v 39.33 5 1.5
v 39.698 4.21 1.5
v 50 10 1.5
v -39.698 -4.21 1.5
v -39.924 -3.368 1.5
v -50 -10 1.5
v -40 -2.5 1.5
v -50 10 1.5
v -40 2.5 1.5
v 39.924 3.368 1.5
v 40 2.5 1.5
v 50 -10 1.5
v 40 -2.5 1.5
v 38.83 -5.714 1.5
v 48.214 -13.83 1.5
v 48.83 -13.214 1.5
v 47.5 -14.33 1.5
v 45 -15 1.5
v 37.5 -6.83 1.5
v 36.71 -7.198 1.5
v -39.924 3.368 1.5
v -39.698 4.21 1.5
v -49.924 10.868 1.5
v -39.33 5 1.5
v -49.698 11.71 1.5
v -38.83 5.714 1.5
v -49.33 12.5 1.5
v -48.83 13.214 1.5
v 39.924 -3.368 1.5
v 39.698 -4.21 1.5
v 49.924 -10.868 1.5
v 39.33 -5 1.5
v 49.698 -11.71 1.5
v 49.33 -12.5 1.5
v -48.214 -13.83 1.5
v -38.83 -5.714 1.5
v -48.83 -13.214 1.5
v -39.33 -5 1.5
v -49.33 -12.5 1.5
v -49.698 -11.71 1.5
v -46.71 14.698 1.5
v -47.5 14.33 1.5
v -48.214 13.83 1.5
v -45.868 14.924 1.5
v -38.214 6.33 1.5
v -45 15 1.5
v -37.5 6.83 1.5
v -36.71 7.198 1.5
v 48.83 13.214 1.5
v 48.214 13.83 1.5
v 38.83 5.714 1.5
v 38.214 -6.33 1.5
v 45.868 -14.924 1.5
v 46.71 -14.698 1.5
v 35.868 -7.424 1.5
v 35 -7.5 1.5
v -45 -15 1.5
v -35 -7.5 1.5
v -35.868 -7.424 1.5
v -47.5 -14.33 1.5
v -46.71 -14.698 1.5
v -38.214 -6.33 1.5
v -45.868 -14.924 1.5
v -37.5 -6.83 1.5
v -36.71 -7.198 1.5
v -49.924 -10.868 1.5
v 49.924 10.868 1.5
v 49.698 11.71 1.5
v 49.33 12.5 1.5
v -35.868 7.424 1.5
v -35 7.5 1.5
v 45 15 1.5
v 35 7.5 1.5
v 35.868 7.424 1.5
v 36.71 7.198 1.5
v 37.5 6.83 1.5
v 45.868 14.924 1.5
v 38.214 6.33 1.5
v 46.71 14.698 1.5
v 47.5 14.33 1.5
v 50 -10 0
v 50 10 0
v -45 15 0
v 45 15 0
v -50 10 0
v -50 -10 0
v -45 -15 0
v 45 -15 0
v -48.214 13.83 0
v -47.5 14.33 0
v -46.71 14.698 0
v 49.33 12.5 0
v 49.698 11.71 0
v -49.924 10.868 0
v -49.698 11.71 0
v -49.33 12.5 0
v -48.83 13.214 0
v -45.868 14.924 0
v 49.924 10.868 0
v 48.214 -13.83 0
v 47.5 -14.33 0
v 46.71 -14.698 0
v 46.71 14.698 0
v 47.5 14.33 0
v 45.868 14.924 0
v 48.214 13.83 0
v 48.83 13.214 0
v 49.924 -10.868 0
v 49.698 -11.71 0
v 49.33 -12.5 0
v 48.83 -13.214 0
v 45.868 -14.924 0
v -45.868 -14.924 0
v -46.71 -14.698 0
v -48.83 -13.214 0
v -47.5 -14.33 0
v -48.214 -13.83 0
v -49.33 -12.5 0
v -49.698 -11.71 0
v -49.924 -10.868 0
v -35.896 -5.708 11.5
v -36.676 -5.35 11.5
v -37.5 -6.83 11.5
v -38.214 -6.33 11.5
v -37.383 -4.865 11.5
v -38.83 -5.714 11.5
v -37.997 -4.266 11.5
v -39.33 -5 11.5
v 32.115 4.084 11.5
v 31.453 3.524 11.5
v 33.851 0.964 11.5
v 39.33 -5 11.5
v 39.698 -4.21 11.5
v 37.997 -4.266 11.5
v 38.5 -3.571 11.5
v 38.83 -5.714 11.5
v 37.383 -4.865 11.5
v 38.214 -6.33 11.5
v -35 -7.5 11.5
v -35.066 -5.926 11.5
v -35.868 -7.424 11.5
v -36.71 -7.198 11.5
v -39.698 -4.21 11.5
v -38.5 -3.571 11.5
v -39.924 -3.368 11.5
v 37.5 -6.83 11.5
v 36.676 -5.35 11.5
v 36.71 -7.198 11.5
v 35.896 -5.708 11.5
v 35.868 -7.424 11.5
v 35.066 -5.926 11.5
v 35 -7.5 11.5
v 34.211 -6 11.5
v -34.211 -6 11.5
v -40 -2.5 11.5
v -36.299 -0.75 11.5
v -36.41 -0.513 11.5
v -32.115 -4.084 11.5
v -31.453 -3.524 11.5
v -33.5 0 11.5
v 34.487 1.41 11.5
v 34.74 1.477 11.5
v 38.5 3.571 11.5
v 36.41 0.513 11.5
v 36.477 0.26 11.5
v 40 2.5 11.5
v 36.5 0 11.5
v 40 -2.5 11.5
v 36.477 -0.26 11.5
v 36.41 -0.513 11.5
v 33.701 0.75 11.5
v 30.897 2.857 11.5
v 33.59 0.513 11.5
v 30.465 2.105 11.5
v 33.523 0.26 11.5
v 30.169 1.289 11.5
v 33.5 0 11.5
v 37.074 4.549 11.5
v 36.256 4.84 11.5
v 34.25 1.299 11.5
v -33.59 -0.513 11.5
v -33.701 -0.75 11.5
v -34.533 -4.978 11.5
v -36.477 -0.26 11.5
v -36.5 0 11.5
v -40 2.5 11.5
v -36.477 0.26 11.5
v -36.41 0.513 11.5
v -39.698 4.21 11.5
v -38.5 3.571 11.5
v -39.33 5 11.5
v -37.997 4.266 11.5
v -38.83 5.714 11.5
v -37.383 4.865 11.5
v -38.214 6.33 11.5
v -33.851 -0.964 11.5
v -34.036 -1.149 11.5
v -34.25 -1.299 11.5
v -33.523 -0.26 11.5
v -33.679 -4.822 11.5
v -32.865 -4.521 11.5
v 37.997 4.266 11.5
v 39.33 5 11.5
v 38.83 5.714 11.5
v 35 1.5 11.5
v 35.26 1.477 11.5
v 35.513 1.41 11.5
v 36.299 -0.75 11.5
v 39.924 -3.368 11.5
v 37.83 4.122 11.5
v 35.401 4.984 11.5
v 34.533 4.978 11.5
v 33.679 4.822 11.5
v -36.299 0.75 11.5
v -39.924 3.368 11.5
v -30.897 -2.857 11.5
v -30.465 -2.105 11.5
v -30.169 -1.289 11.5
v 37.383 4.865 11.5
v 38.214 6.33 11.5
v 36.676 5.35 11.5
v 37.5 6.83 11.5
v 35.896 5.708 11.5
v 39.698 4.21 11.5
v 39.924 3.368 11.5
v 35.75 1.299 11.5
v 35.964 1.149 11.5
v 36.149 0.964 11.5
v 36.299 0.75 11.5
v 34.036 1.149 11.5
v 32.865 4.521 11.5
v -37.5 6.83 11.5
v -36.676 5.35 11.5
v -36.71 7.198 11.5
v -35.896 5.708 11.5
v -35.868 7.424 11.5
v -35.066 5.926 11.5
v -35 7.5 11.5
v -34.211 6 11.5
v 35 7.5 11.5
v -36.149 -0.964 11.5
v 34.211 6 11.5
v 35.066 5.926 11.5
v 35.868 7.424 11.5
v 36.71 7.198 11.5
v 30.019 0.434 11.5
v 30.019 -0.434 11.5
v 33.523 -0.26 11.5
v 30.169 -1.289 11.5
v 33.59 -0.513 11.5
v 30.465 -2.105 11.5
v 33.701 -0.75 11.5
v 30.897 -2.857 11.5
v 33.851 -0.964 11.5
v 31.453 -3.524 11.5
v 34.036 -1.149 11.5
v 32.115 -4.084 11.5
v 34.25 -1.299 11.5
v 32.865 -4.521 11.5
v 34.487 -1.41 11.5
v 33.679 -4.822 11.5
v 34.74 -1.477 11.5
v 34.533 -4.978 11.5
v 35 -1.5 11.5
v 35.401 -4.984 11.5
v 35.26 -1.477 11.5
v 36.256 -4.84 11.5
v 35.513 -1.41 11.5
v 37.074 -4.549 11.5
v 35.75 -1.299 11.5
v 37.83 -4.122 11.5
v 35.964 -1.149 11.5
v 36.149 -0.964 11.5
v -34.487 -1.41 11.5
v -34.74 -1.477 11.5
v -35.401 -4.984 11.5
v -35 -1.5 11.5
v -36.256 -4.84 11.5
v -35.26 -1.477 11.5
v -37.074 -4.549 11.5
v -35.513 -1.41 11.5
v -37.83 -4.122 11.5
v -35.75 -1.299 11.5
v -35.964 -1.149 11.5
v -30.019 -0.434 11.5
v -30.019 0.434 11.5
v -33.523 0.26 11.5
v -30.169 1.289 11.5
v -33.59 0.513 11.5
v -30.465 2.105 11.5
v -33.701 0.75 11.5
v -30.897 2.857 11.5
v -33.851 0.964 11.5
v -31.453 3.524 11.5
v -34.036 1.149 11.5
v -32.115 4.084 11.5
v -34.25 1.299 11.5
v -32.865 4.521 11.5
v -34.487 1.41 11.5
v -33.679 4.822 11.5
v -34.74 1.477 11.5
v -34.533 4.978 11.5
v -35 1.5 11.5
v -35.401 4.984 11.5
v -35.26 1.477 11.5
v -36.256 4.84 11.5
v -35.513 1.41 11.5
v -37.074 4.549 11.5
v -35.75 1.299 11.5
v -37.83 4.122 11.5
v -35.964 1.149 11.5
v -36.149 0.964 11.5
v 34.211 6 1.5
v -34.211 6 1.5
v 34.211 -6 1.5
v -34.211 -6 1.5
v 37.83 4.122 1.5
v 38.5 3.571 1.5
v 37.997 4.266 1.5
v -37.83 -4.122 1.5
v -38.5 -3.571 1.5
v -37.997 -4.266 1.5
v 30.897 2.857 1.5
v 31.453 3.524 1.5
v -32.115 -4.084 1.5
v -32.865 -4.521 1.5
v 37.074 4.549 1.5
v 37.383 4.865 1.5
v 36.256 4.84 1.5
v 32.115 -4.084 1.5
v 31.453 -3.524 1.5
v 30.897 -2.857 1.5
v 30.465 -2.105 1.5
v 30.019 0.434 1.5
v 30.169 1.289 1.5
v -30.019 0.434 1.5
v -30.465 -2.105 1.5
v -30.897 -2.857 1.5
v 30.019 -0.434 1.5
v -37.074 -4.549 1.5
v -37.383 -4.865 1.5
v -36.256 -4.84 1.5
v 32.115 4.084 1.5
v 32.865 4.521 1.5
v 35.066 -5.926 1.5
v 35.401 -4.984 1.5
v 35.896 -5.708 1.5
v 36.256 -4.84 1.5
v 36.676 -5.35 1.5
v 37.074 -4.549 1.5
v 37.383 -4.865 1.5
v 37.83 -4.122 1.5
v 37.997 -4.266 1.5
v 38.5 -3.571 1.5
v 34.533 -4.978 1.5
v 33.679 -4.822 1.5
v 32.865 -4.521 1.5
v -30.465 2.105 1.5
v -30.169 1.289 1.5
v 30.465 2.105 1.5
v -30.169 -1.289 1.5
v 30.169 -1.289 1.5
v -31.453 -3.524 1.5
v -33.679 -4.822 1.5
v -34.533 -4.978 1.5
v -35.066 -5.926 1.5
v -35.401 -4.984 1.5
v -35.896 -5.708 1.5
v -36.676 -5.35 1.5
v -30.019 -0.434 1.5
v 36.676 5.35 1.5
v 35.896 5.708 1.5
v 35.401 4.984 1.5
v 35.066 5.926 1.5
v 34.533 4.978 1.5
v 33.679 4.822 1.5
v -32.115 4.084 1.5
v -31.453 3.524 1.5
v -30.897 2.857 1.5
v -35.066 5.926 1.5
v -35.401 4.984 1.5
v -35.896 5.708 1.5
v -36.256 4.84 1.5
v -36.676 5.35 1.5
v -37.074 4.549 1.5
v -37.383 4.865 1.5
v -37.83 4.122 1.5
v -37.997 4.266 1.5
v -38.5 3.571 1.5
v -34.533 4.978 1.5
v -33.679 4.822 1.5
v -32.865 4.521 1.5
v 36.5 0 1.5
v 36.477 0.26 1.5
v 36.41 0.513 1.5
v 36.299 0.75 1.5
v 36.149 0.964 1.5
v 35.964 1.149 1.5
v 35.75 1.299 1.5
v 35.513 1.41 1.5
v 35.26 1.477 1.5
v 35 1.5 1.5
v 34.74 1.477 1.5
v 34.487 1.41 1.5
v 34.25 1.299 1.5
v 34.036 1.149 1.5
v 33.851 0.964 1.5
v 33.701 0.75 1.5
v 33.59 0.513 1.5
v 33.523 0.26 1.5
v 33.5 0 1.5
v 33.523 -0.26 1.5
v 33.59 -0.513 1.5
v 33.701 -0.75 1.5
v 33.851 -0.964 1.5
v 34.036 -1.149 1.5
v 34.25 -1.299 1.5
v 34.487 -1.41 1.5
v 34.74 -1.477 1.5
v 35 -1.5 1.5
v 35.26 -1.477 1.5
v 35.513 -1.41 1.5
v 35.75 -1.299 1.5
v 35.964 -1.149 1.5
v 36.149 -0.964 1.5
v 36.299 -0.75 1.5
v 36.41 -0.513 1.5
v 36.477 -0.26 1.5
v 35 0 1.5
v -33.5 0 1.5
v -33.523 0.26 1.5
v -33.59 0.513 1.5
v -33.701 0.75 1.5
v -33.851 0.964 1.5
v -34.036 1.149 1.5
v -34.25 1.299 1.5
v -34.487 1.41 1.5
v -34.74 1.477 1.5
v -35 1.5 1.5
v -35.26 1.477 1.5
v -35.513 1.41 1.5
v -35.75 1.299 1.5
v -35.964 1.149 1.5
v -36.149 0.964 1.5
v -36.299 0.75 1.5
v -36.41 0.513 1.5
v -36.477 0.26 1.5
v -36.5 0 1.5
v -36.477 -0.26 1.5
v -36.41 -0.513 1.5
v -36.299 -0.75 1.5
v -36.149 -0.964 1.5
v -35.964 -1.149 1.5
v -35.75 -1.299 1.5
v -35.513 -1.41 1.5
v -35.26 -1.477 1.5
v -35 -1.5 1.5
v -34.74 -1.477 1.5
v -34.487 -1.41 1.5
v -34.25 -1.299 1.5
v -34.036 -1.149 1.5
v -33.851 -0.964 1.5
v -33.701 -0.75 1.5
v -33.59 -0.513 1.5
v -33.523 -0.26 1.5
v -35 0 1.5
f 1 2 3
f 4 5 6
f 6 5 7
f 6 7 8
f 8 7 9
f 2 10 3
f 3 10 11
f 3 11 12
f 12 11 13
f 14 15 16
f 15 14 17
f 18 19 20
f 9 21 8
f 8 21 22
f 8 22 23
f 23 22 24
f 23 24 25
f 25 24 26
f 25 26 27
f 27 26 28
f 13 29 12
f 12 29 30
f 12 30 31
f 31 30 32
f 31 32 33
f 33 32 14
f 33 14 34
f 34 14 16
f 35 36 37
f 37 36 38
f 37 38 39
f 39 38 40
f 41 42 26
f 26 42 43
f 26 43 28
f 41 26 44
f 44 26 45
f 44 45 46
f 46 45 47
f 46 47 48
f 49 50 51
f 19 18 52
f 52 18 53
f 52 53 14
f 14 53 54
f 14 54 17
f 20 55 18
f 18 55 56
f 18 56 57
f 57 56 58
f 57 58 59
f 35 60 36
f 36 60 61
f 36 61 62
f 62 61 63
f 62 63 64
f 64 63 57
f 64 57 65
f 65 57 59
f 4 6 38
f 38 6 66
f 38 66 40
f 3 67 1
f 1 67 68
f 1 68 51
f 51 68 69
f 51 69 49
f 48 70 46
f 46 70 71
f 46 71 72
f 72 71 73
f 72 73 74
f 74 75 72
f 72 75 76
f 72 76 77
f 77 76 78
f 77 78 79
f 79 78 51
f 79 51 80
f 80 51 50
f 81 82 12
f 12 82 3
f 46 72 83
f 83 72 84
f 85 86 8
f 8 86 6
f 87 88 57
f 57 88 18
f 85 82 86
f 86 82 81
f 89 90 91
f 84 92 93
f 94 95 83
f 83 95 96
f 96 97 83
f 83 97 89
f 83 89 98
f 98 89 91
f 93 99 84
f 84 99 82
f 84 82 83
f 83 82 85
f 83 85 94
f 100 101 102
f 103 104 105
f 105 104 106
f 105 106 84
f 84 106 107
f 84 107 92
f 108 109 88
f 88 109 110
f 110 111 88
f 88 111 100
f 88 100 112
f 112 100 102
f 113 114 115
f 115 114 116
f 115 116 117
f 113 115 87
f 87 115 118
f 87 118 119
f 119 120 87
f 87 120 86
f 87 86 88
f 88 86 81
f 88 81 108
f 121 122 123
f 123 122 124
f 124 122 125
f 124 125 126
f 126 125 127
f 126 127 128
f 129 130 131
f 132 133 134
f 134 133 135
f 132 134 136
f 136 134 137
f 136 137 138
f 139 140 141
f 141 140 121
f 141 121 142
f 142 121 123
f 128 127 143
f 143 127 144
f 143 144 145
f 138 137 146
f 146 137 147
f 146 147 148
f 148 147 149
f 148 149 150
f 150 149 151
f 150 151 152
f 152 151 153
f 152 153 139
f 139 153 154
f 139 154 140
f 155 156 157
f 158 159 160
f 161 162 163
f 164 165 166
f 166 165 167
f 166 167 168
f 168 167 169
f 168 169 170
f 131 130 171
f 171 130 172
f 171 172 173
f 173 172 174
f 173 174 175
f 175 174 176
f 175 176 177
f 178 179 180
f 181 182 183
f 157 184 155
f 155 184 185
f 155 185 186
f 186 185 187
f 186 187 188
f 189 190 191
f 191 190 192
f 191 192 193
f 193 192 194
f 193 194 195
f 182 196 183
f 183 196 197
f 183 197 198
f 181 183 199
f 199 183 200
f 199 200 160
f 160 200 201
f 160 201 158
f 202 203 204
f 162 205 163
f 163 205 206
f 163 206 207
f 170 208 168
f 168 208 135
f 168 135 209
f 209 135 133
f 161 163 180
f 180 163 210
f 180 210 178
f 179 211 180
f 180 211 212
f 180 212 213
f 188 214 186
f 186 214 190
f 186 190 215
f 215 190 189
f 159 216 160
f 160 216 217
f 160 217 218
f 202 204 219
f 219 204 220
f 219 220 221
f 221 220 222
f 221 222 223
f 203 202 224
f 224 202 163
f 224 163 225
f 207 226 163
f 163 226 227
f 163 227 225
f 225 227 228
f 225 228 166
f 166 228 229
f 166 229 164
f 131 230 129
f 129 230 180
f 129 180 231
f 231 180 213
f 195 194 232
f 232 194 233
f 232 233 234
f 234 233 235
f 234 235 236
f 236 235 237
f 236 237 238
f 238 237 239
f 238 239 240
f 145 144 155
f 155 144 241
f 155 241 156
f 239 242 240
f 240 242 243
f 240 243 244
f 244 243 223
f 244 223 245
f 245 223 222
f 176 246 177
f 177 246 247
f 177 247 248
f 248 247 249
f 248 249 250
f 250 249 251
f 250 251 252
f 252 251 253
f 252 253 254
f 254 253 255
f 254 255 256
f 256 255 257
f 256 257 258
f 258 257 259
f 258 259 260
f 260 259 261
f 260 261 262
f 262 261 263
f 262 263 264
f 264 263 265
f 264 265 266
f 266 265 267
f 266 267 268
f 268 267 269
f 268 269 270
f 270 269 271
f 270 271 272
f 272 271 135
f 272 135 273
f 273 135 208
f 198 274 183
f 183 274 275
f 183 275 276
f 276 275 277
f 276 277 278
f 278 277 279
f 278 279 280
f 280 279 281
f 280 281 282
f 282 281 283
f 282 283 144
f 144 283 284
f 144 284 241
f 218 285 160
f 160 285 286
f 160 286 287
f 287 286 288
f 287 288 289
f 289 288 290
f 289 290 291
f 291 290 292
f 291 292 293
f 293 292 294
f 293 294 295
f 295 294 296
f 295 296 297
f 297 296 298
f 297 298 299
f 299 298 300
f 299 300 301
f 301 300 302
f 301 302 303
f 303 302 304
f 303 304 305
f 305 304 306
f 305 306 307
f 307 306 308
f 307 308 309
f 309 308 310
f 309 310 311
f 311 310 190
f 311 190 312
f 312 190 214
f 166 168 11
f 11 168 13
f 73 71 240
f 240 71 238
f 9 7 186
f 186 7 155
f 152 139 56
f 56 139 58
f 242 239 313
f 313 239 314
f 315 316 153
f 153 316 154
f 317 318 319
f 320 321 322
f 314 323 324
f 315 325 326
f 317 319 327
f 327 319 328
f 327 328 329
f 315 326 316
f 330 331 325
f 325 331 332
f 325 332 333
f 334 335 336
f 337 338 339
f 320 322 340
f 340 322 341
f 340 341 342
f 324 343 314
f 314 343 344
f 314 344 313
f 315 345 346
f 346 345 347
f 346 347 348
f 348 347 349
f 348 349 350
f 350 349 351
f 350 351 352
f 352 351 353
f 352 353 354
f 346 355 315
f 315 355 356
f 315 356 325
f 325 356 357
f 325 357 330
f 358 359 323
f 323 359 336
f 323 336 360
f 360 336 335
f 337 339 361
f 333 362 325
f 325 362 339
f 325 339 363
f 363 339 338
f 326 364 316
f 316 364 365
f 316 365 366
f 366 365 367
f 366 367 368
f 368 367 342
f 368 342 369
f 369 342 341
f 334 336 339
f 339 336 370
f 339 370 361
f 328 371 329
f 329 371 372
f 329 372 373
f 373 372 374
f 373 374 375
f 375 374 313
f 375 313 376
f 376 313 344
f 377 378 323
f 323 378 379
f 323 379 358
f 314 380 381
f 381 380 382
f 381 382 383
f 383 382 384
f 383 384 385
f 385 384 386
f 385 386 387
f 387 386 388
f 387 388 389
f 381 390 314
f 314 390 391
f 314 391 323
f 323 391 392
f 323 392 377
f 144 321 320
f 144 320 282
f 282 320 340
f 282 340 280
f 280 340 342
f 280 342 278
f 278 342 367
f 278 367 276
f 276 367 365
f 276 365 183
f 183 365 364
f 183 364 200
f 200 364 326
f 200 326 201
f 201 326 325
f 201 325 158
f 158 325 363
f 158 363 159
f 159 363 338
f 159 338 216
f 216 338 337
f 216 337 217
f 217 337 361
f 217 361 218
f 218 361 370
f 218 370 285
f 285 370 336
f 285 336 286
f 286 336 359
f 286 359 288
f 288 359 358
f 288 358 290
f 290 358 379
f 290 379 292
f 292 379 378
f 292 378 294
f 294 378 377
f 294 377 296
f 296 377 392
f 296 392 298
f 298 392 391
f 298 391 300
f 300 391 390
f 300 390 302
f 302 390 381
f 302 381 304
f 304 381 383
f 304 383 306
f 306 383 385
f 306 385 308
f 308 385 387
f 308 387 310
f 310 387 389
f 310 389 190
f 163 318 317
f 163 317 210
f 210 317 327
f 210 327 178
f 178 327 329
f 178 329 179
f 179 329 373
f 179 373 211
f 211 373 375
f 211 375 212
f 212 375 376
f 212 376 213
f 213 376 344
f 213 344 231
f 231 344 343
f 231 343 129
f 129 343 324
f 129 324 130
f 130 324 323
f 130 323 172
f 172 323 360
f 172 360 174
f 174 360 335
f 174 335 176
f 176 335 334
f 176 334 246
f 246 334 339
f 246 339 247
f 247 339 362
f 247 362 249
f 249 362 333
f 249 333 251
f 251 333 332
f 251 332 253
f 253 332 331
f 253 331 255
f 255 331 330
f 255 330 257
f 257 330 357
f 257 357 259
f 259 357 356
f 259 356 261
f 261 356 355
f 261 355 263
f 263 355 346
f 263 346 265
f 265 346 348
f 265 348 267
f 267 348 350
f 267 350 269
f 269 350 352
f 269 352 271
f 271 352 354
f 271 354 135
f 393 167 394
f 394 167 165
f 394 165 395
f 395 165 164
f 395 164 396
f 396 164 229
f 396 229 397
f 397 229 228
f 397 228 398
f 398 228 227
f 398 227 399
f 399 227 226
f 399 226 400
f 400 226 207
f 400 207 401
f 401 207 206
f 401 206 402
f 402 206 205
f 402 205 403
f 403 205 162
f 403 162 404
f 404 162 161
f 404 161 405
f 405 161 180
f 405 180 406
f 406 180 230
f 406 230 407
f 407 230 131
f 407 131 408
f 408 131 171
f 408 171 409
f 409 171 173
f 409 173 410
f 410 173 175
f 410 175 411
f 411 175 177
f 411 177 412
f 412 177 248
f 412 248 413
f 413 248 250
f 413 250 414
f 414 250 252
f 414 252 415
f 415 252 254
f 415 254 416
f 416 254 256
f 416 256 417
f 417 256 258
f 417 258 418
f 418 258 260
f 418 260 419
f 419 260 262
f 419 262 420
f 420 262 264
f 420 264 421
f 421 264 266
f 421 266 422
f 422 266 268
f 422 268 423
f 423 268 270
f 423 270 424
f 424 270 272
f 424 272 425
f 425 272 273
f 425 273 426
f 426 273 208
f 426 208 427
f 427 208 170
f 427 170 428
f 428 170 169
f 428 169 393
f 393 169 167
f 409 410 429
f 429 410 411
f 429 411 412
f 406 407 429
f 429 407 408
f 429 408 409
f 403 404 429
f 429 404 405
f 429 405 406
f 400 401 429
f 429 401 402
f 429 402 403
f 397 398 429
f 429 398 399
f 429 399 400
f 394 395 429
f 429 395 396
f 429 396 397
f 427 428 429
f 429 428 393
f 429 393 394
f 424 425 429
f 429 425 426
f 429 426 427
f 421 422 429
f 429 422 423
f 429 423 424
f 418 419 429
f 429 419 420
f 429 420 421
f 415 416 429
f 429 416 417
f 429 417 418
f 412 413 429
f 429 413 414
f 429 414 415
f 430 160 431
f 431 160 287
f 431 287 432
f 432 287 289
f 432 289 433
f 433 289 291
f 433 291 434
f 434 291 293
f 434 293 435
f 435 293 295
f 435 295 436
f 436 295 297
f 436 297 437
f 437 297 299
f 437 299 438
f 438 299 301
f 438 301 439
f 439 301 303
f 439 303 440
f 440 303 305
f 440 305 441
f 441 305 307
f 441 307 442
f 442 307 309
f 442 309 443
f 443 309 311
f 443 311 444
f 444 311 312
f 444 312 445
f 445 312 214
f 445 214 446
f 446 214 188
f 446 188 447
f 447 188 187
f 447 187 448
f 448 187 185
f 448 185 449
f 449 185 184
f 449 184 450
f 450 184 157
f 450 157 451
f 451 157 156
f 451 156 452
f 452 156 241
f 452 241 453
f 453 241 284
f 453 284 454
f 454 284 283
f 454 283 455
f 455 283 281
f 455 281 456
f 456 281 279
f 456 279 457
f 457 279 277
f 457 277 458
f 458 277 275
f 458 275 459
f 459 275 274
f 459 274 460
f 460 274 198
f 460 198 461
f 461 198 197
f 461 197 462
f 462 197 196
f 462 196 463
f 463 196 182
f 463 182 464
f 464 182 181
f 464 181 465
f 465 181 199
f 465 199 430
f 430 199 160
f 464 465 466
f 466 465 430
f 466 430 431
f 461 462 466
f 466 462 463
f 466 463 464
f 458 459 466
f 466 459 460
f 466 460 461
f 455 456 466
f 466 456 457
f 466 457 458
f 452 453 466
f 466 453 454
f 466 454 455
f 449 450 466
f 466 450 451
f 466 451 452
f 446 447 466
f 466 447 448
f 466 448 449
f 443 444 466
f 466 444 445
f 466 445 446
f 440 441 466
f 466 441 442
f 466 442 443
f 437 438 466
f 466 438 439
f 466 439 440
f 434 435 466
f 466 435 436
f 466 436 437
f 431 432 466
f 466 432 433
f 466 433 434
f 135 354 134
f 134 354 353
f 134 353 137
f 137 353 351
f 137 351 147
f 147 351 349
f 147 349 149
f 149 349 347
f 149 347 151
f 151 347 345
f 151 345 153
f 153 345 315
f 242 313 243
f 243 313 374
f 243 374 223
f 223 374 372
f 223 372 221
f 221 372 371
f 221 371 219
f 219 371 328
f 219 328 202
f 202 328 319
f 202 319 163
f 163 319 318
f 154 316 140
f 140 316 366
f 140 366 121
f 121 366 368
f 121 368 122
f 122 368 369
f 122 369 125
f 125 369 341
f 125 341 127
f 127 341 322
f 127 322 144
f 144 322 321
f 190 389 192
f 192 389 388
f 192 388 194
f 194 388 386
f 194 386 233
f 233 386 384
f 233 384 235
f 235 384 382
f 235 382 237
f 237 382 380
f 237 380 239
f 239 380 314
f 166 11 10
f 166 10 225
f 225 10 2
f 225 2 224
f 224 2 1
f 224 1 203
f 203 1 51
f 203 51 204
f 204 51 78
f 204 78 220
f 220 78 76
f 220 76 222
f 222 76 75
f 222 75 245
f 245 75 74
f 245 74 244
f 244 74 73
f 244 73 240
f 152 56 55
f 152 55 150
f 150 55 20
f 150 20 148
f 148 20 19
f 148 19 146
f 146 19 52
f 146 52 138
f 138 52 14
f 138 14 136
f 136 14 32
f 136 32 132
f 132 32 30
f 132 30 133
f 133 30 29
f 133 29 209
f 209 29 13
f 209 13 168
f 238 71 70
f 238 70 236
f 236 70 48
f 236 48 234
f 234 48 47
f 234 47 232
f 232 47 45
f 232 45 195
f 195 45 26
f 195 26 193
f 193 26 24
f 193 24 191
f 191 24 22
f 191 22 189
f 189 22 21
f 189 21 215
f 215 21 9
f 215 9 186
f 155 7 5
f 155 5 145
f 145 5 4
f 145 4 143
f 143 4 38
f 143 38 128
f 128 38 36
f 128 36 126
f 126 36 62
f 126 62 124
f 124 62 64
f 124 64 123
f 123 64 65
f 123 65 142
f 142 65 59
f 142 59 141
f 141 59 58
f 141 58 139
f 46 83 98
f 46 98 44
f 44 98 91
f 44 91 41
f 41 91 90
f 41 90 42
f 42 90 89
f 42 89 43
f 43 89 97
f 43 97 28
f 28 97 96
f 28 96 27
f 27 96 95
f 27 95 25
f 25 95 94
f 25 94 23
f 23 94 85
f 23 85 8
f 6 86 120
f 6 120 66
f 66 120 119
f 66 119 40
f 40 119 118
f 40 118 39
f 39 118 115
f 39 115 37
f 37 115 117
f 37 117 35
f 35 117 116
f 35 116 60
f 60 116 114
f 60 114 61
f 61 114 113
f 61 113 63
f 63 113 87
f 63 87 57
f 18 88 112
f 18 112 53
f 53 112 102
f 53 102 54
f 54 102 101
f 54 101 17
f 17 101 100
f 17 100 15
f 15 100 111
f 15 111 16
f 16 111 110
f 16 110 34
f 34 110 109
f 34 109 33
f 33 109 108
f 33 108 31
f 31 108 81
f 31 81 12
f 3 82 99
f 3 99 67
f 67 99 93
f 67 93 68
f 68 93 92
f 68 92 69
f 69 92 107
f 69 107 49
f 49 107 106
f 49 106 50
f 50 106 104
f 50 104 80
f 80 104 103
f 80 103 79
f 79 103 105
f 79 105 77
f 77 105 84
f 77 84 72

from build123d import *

# Parameters (mm, degrees)
SKETCH1_W           = 100
SKETCH1_H           = 30
BOSS_EXTRUDE1_DEPTH = 1.5
SKETCH2_W           = 80
SKETCH2_H           = 15
SKETCH2_W_2         = 77
SKETCH2_H_2         = 12
EXTRUDE_THIN1_DEPTH = 10
SKETCH3_R           = 5
BOSS_EXTRUDE2_DEPTH = 10
SKETCH4_R           = 1.5
CUT_EXTRUDE1_DEPTH  = 10
FILLET1_R           = 5


with BuildPart() as part:
    # Sketch1 → Boss-Extrude1 (new body)
    with BuildSketch(Plane.XY):
        Rectangle(SKETCH1_W, SKETCH1_H)
    extrude(amount=BOSS_EXTRUDE1_DEPTH)

    # Sketch2 → Extrude-Thin1 (add)
    with BuildSketch(Plane.XY.offset(1.5)):
        Rectangle(SKETCH2_W, SKETCH2_H)
        Rectangle(SKETCH2_W_2, SKETCH2_H_2, mode=Mode.SUBTRACT)
    extrude(amount=EXTRUDE_THIN1_DEPTH)

    # Sketch3 → Boss-Extrude2 (add)
    with BuildSketch(Plane.XY.offset(1.5)):
        with Locations((-35, 0)):
            Circle(SKETCH3_R)
        with Locations((35, 0)):
            Circle(SKETCH3_R)
    extrude(amount=BOSS_EXTRUDE2_DEPTH)

    # Sketch4 → Cut-Extrude1 (cut)
    with BuildSketch(Plane.XY.offset(11.5)):
        with Locations((-35, 0)):
            Circle(SKETCH4_R)
        with Locations(Location((35, 0, 0), (0, 0, 180))):
            Circle(SKETCH4_R)
    extrude(amount=-CUT_EXTRUDE1_DEPTH, mode=Mode.SUBTRACT)

    # Fillet1
    # the kernel refuses this fillet: 5 mm, written as the material it adds along each edge
    with BuildSketch(Plane(origin=(38.5, -6, 1.5), x_dir=(0, 1, 0), z_dir=(0, 0, 1))) as fillet1_piece_1:
        with BuildLine():
            CenterArc((5, 4.288522873), FILLET1_R, 180, 59.059821395)
            Line((0, 4.288522873), (0, 0))
            Line((0, 0), (2.429285786, 0))
        make_face()
    extrude(amount=10)
    with BuildSketch(Plane(origin=(38.5, 6, 1.5), x_dir=(0, -1, 0), z_dir=(0, 0, 1))) as fillet1_piece_2:
        with BuildLine():
            CenterArc((5, -4.288522873), FILLET1_R, 120.940178605, 59.059821395)
            Line((0, -4.288522873), (0, 0))
            Line((0, 0), (2.429285786, 0))
        make_face()
    extrude(amount=10)
    with BuildSketch(Plane(origin=(-38.5, -6, 1.5), x_dir=(1, 0, 0), z_dir=(0, 0, 1))) as fillet1_piece_3:
        with BuildLine():
            CenterArc((4.288522873, 5), FILLET1_R, 210.940178605, 59.059821395)
            Line((0, 2.429285786), (0, 0))
            Line((0, 0), (4.288522873, 0))
        make_face()
    extrude(amount=10)
    with BuildSketch(Plane(origin=(-38.5, 6, 1.5), x_dir=(1, 0, 0), z_dir=(0, 0, 1))) as fillet1_piece_4:
        with BuildLine():
            CenterArc((4.288522873, -5), FILLET1_R, 90, 59.059821395)
            Line((0, -2.429285786), (0, 0))
            Line((0, 0), (4.288522873, 0))
        make_face()
    extrude(amount=10)
    # the kernel refuses this fillet: 5 mm, written as the material it takes off along each edge
    with BuildSketch(Plane(origin=(40, 7.5, 1.5), x_dir=(0, -1, 0), z_dir=(0, 0, 1)), Plane(origin=(40, -7.5, 1.5), x_dir=(-1, 0, 0), z_dir=(0, 0, 1)), Plane(origin=(-40, 7.5, 1.5), x_dir=(1, 0, 0), z_dir=(0, 0, 1))) as fillet1_2_piece_1:
        with BuildLine():
            CenterArc((FILLET1_R, -FILLET1_R), FILLET1_R, 90, 90)
            Line((0, -FILLET1_R), (0, 0))
            Line((0, 0), (FILLET1_R, 0))
        make_face()
    extrude(amount=22.5, mode=Mode.SUBTRACT)
    with BuildSketch(Plane(origin=(-40, -7.5, 1.5), x_dir=(1, 0, 0), z_dir=(0, 0, 1))) as fillet1_2_piece_2:
        with BuildLine():
            CenterArc((FILLET1_R, FILLET1_R), FILLET1_R, 180, 90)
            Line((0, FILLET1_R), (0, 0))
            Line((0, 0), (FILLET1_R, 0))
        make_face()
    extrude(amount=22.5, mode=Mode.SUBTRACT)
    with BuildSketch(Plane(origin=(-50, 15, -12.5), x_dir=(1, 0, 0), z_dir=(0, 0, 1)), Plane(origin=(-50, -15, -12.5), x_dir=(0, 1, 0), z_dir=(0, 0, 1))) as fillet1_2_piece_3:
        with BuildLine():
            CenterArc((FILLET1_R, -FILLET1_R), FILLET1_R, 90, 90)
            Line((0, -FILLET1_R), (0, 0))
            Line((0, 0), (FILLET1_R, 0))
        make_face()
    extrude(amount=26.5, mode=Mode.SUBTRACT)
    with BuildSketch(Plane(origin=(50, -15, -12.5), x_dir=(0, 1, 0), z_dir=(0, 0, 1)), Plane(origin=(50, 15, -12.5), x_dir=(-1, 0, 0), z_dir=(0, 0, 1))) as fillet1_2_piece_4:
        with BuildLine():
            CenterArc((FILLET1_R, FILLET1_R), FILLET1_R, 180, 90)
            Line((0, FILLET1_R), (0, 0))
            Line((0, 0), (FILLET1_R, 0))
        make_face()
    extrude(amount=26.5, mode=Mode.SUBTRACT)


solid = part.part
